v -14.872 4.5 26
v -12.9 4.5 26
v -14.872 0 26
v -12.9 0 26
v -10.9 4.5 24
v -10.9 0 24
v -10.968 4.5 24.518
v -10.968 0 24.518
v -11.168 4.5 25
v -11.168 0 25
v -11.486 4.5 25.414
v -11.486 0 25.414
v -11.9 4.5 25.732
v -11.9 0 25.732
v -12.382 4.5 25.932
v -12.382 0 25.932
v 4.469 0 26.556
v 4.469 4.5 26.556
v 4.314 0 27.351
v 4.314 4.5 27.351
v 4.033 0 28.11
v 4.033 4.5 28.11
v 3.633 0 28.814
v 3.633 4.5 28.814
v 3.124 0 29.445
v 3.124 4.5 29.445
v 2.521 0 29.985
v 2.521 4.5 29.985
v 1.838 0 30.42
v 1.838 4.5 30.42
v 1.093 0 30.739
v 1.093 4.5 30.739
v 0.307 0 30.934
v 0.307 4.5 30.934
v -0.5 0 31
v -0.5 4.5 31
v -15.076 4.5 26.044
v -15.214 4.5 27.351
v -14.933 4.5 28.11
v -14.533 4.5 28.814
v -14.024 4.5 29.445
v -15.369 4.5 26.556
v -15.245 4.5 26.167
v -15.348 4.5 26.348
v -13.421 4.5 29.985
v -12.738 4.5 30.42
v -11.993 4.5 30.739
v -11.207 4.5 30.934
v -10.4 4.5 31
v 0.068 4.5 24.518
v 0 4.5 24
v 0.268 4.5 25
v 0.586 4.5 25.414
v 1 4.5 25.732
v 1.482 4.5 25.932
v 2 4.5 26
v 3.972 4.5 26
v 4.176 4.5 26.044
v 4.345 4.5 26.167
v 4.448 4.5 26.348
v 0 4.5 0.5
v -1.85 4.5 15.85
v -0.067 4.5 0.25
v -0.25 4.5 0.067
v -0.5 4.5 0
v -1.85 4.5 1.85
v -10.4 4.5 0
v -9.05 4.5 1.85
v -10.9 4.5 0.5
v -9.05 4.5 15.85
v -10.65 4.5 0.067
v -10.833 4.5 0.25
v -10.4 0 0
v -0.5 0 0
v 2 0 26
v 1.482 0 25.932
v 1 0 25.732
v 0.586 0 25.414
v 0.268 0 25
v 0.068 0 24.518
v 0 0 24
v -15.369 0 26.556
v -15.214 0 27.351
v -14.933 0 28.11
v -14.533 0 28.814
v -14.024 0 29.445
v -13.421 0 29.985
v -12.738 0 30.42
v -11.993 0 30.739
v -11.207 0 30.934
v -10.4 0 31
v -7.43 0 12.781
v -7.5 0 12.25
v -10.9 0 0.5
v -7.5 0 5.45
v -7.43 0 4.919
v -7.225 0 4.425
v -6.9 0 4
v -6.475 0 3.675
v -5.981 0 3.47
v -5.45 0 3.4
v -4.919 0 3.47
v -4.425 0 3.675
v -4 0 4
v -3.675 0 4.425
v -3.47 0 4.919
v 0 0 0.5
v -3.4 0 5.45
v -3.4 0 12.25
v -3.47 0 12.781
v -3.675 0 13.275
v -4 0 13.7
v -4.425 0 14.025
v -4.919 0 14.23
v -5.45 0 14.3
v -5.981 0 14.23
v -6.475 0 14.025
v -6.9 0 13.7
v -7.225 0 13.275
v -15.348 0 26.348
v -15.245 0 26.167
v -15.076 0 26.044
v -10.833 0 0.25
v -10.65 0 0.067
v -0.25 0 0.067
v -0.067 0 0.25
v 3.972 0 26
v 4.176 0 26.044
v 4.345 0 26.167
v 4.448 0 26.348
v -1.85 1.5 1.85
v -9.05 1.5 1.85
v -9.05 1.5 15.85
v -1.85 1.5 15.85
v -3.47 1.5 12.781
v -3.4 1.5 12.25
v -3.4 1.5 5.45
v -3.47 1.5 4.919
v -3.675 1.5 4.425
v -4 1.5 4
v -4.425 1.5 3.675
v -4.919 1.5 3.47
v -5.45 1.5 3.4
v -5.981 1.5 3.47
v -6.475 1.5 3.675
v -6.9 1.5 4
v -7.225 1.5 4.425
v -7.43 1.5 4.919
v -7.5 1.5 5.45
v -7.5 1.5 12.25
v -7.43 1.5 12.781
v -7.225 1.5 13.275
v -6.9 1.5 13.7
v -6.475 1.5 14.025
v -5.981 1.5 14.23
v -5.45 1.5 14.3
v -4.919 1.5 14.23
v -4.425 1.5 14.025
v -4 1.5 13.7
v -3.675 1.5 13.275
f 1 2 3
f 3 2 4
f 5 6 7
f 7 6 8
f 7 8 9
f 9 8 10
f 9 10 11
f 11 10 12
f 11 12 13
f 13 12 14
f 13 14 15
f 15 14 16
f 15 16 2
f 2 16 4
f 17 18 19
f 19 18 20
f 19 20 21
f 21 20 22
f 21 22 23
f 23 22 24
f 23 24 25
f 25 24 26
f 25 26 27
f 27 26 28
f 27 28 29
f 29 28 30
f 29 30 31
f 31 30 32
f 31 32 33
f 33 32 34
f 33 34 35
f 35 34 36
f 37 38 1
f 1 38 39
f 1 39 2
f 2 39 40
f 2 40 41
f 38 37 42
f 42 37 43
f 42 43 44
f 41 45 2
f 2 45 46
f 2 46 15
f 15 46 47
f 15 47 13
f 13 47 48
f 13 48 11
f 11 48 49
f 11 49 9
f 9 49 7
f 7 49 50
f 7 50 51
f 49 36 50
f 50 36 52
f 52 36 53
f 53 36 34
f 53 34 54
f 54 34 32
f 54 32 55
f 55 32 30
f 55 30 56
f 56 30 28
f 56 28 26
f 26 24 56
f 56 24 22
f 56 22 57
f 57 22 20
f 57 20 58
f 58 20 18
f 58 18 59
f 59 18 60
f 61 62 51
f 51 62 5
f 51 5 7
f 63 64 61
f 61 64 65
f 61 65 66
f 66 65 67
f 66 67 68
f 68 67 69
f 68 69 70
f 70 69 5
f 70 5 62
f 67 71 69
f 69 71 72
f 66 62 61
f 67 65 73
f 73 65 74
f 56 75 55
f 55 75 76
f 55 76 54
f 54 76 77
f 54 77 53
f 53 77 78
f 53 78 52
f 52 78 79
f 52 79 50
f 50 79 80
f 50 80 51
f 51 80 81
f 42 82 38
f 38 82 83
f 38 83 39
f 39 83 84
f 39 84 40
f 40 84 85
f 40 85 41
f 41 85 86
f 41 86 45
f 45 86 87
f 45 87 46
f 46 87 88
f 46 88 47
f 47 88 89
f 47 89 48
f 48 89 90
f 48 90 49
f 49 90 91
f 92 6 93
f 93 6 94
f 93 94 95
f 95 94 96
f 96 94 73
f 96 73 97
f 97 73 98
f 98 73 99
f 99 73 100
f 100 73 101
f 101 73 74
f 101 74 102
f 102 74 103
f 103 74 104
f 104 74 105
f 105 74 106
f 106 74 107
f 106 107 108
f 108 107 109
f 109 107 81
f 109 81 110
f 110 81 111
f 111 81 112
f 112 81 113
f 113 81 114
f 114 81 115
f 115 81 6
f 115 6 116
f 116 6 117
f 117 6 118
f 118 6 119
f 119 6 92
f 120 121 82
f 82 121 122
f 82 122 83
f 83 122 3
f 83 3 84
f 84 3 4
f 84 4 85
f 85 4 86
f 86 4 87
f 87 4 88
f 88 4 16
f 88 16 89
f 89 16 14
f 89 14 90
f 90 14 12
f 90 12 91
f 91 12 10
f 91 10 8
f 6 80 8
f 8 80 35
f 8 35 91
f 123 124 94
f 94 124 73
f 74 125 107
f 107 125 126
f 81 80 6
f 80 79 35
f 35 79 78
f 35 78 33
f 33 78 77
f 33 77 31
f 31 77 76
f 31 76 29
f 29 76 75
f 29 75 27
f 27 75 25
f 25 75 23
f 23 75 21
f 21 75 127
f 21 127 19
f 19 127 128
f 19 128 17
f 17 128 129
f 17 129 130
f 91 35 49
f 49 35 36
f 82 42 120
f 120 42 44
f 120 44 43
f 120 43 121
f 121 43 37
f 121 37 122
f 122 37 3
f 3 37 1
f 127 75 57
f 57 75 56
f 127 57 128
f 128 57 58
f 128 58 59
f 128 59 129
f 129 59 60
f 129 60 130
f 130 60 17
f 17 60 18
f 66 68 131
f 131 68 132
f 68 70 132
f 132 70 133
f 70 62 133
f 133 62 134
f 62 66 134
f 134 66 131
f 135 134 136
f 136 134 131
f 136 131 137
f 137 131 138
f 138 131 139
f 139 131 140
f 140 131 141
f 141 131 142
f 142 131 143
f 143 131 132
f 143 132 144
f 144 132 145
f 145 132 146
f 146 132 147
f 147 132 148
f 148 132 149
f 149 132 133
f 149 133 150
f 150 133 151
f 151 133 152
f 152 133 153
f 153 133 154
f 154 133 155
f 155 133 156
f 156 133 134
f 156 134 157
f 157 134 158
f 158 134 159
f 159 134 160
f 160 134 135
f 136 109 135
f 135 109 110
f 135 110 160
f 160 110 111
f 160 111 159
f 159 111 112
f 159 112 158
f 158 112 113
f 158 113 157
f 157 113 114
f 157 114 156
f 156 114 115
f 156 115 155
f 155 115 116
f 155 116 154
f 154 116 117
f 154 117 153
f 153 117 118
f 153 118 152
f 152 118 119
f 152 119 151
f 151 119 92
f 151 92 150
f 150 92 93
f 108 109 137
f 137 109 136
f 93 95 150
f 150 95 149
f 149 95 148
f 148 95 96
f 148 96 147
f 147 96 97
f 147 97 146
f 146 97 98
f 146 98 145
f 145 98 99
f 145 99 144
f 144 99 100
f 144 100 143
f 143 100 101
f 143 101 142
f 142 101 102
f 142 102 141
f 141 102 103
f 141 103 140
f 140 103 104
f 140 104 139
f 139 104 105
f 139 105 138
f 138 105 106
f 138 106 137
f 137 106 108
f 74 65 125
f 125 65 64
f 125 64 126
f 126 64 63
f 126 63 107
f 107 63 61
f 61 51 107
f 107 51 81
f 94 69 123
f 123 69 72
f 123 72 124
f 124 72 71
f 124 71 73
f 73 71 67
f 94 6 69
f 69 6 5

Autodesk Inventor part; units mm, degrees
ref_plane "YZ Plane" through (0, 0, 0) normal (1, 0, 0) x (0, 1, 0)
ref_plane "XZ Plane" through (0, 0, 0) normal (0, 1, 0) x (-1, 0, 0)
ref_plane "XY Plane" through (0, 0, 0) normal (0, 0, 1) x (1, 0, 0)
sketch "Boceto1" plane through (0, 0, 0) normal (0, 1, 0) x (-1, 0, 0)
  line L0 (0, 0) -> (10.9, 0)
  line L1 (10.9, 0) -> (10.9, 24)
  line L2 (10.9, 31) -> (0, 31)
  line L3 (0, 24) -> (0, 0)
  line L4 (10.9, 31) -> (10.4, 31)
  line L5 (15.4, 26) -> (15.4, 26)
  line L6 (15.4, 26) -> (12.9, 26)
  line L7 (10.9, 26) -> (10.9, 31)
  line L8 (0, 31) -> (0.5, 31)
  line L9 (-4.5, 26) -> (-4.5, 26)
  line L10 (-4.5, 26) -> (-2, 26)
  line L11 (0, 26) -> (0, 31)
  arc A0 (15.4, 26) -> (10.4, 31) centre (10.4, 26) ccw
  arc A1 (0.5, 31) -> (-4.5, 26) centre (0.5, 26) ccw
  arc A2 (12.9, 26) -> (10.9, 24) centre (12.9, 24) ccw
  arc A3 (0, 24) -> (-2, 26) centre (-2, 24) ccw
  point P0 (15.4, 31)
  point P1 (-4.5, 31)
  dimension "d0" = 10.9
  dimension "d1" = 31
  dimension "d2" = 4.5
  dimension "d3" = 5
  dimension "d4" = 4.5
  dimension "d5" = 5
  dimension "d7" = 5
  dimension "d8" = 5
  dimension "d9" = 2
extrude "Extrusión1" add sketch "Boceto1" along normal blind 4.5 contours L3 A3 L10 A1 L2 A0 L6 A2 L1 L0
sketch "Boceto2" plane through (0, 4.5, 0) normal (0, 1, 0) x (1, 0, 0)
  arc A0 (-15.4, -26) -> (-10.4, -31) centre (-10.4, -26) ccw projected
  line L0 (-10.4, -31) -> (-0.5, -31) projected
  arc A1 (-0.5, -31) -> (4.5, -26) centre (-0.5, -26) ccw projected
  line L1 (4.5, -26) -> (2, -26) projected
  arc A2 (0, -24) -> (2, -26) centre (2, -24) ccw projected
  line L2 (0, -24) -> (0, 0) projected
  line L3 (0, 0) -> (-10.9, 0) projected
  line L4 (-10.9, 0) -> (-10.9, -24) projected
  arc A3 (-12.9, -26) -> (-10.9, -24) centre (-12.9, -24) ccw projected
  line L5 (-12.9, -26) -> (-15.4, -26) projected
  line L6 (-9.05, -24) -> (-9.05, -1.85)
  line L7 (-9.05, -1.85) -> (-1.85, -1.85)
  line L8 (-1.85, -1.85) -> (-1.85, -24)
  arc A4 (-1.85, -24) -> (2, -27.85) centre (2, -24) ccw
  line L9 (2, -27.85) -> (2.0495, -27.85)
  arc A5 (-0.5, -29.15) -> (2.0495, -27.85) centre (-0.5, -26) ccw
  line L10 (-0.5, -29.15) -> (-10.4, -29.15)
  arc A6 (-12.9495, -27.85) -> (-10.4, -29.15) centre (-10.4, -26) ccw
  line L11 (-12.9495, -27.85) -> (-12.9, -27.85)
  arc A7 (-12.9, -27.85) -> (-9.05, -24) centre (-12.9, -24) ccw
  line L12 (-5.45, -1.85) -> (-5.45, -15.85)
  line L13 (-5.45, -15.85) -> (-9.05, -15.85)
  line L14 (-5.45, -15.85) -> (-1.85, -15.85)
  dimension "d14" = 7.2
  dimension "d15" = 14
extrude "Extrusión2" cut sketch "Boceto2" against normal blind 3 contours L6 L7 L12 L13 | L12 L7 L8 L14
sketch "Boceto3" plane through (0, 1.5, 0) normal (0, 1, 0) x (1, 0, 0)
  line L0 (-1.85, -1.85) -> (-1.85, -15.85) projected
  line L1 (-9.05, -1.85) -> (-1.85, -1.85) projected
  line L2 (-9.05, -15.85) -> (-9.05, -1.85) projected
  line L3 (-1.85, -15.85) -> (-9.05, -15.85) projected
  line L4 (-5.45, -3.4) -> (-5.45, -3.4)
  line L5 (-3.4, -5.45) -> (-3.4, -12.25)
  line L6 (-5.45, -14.3) -> (-5.45, -14.3)
  line L7 (-7.5, -12.25) -> (-7.5, -5.45)
  arc A0 (-5.45, -3.4) -> (-7.5, -5.45) centre (-5.45, -5.45) ccw
  arc A1 (-5.45, -14.3) -> (-3.4, -12.25) centre (-5.45, -12.25) ccw
  arc A2 (-7.5, -12.25) -> (-5.45, -14.3) centre (-5.45, -12.25) ccw
  arc A3 (-3.4, -5.45) -> (-5.45, -3.4) centre (-5.45, -5.45) ccw
  point P0 (0, 0)
  dimension "d18" = 4.1
  dimension "d19" = 2.05
extrude "Extrusión3" cut sketch "Boceto3" against normal blind 3 contours L5 A1 A2 L7 A0 A3
fillet "Empalme1" radius 0.5 4 edges at (0, 2.25, 0) (-10.9, 2.25, 0) (4.5, 2.25, 26) (-15.4, 2.25, 26)
properties part number "Cierre ventanas"
